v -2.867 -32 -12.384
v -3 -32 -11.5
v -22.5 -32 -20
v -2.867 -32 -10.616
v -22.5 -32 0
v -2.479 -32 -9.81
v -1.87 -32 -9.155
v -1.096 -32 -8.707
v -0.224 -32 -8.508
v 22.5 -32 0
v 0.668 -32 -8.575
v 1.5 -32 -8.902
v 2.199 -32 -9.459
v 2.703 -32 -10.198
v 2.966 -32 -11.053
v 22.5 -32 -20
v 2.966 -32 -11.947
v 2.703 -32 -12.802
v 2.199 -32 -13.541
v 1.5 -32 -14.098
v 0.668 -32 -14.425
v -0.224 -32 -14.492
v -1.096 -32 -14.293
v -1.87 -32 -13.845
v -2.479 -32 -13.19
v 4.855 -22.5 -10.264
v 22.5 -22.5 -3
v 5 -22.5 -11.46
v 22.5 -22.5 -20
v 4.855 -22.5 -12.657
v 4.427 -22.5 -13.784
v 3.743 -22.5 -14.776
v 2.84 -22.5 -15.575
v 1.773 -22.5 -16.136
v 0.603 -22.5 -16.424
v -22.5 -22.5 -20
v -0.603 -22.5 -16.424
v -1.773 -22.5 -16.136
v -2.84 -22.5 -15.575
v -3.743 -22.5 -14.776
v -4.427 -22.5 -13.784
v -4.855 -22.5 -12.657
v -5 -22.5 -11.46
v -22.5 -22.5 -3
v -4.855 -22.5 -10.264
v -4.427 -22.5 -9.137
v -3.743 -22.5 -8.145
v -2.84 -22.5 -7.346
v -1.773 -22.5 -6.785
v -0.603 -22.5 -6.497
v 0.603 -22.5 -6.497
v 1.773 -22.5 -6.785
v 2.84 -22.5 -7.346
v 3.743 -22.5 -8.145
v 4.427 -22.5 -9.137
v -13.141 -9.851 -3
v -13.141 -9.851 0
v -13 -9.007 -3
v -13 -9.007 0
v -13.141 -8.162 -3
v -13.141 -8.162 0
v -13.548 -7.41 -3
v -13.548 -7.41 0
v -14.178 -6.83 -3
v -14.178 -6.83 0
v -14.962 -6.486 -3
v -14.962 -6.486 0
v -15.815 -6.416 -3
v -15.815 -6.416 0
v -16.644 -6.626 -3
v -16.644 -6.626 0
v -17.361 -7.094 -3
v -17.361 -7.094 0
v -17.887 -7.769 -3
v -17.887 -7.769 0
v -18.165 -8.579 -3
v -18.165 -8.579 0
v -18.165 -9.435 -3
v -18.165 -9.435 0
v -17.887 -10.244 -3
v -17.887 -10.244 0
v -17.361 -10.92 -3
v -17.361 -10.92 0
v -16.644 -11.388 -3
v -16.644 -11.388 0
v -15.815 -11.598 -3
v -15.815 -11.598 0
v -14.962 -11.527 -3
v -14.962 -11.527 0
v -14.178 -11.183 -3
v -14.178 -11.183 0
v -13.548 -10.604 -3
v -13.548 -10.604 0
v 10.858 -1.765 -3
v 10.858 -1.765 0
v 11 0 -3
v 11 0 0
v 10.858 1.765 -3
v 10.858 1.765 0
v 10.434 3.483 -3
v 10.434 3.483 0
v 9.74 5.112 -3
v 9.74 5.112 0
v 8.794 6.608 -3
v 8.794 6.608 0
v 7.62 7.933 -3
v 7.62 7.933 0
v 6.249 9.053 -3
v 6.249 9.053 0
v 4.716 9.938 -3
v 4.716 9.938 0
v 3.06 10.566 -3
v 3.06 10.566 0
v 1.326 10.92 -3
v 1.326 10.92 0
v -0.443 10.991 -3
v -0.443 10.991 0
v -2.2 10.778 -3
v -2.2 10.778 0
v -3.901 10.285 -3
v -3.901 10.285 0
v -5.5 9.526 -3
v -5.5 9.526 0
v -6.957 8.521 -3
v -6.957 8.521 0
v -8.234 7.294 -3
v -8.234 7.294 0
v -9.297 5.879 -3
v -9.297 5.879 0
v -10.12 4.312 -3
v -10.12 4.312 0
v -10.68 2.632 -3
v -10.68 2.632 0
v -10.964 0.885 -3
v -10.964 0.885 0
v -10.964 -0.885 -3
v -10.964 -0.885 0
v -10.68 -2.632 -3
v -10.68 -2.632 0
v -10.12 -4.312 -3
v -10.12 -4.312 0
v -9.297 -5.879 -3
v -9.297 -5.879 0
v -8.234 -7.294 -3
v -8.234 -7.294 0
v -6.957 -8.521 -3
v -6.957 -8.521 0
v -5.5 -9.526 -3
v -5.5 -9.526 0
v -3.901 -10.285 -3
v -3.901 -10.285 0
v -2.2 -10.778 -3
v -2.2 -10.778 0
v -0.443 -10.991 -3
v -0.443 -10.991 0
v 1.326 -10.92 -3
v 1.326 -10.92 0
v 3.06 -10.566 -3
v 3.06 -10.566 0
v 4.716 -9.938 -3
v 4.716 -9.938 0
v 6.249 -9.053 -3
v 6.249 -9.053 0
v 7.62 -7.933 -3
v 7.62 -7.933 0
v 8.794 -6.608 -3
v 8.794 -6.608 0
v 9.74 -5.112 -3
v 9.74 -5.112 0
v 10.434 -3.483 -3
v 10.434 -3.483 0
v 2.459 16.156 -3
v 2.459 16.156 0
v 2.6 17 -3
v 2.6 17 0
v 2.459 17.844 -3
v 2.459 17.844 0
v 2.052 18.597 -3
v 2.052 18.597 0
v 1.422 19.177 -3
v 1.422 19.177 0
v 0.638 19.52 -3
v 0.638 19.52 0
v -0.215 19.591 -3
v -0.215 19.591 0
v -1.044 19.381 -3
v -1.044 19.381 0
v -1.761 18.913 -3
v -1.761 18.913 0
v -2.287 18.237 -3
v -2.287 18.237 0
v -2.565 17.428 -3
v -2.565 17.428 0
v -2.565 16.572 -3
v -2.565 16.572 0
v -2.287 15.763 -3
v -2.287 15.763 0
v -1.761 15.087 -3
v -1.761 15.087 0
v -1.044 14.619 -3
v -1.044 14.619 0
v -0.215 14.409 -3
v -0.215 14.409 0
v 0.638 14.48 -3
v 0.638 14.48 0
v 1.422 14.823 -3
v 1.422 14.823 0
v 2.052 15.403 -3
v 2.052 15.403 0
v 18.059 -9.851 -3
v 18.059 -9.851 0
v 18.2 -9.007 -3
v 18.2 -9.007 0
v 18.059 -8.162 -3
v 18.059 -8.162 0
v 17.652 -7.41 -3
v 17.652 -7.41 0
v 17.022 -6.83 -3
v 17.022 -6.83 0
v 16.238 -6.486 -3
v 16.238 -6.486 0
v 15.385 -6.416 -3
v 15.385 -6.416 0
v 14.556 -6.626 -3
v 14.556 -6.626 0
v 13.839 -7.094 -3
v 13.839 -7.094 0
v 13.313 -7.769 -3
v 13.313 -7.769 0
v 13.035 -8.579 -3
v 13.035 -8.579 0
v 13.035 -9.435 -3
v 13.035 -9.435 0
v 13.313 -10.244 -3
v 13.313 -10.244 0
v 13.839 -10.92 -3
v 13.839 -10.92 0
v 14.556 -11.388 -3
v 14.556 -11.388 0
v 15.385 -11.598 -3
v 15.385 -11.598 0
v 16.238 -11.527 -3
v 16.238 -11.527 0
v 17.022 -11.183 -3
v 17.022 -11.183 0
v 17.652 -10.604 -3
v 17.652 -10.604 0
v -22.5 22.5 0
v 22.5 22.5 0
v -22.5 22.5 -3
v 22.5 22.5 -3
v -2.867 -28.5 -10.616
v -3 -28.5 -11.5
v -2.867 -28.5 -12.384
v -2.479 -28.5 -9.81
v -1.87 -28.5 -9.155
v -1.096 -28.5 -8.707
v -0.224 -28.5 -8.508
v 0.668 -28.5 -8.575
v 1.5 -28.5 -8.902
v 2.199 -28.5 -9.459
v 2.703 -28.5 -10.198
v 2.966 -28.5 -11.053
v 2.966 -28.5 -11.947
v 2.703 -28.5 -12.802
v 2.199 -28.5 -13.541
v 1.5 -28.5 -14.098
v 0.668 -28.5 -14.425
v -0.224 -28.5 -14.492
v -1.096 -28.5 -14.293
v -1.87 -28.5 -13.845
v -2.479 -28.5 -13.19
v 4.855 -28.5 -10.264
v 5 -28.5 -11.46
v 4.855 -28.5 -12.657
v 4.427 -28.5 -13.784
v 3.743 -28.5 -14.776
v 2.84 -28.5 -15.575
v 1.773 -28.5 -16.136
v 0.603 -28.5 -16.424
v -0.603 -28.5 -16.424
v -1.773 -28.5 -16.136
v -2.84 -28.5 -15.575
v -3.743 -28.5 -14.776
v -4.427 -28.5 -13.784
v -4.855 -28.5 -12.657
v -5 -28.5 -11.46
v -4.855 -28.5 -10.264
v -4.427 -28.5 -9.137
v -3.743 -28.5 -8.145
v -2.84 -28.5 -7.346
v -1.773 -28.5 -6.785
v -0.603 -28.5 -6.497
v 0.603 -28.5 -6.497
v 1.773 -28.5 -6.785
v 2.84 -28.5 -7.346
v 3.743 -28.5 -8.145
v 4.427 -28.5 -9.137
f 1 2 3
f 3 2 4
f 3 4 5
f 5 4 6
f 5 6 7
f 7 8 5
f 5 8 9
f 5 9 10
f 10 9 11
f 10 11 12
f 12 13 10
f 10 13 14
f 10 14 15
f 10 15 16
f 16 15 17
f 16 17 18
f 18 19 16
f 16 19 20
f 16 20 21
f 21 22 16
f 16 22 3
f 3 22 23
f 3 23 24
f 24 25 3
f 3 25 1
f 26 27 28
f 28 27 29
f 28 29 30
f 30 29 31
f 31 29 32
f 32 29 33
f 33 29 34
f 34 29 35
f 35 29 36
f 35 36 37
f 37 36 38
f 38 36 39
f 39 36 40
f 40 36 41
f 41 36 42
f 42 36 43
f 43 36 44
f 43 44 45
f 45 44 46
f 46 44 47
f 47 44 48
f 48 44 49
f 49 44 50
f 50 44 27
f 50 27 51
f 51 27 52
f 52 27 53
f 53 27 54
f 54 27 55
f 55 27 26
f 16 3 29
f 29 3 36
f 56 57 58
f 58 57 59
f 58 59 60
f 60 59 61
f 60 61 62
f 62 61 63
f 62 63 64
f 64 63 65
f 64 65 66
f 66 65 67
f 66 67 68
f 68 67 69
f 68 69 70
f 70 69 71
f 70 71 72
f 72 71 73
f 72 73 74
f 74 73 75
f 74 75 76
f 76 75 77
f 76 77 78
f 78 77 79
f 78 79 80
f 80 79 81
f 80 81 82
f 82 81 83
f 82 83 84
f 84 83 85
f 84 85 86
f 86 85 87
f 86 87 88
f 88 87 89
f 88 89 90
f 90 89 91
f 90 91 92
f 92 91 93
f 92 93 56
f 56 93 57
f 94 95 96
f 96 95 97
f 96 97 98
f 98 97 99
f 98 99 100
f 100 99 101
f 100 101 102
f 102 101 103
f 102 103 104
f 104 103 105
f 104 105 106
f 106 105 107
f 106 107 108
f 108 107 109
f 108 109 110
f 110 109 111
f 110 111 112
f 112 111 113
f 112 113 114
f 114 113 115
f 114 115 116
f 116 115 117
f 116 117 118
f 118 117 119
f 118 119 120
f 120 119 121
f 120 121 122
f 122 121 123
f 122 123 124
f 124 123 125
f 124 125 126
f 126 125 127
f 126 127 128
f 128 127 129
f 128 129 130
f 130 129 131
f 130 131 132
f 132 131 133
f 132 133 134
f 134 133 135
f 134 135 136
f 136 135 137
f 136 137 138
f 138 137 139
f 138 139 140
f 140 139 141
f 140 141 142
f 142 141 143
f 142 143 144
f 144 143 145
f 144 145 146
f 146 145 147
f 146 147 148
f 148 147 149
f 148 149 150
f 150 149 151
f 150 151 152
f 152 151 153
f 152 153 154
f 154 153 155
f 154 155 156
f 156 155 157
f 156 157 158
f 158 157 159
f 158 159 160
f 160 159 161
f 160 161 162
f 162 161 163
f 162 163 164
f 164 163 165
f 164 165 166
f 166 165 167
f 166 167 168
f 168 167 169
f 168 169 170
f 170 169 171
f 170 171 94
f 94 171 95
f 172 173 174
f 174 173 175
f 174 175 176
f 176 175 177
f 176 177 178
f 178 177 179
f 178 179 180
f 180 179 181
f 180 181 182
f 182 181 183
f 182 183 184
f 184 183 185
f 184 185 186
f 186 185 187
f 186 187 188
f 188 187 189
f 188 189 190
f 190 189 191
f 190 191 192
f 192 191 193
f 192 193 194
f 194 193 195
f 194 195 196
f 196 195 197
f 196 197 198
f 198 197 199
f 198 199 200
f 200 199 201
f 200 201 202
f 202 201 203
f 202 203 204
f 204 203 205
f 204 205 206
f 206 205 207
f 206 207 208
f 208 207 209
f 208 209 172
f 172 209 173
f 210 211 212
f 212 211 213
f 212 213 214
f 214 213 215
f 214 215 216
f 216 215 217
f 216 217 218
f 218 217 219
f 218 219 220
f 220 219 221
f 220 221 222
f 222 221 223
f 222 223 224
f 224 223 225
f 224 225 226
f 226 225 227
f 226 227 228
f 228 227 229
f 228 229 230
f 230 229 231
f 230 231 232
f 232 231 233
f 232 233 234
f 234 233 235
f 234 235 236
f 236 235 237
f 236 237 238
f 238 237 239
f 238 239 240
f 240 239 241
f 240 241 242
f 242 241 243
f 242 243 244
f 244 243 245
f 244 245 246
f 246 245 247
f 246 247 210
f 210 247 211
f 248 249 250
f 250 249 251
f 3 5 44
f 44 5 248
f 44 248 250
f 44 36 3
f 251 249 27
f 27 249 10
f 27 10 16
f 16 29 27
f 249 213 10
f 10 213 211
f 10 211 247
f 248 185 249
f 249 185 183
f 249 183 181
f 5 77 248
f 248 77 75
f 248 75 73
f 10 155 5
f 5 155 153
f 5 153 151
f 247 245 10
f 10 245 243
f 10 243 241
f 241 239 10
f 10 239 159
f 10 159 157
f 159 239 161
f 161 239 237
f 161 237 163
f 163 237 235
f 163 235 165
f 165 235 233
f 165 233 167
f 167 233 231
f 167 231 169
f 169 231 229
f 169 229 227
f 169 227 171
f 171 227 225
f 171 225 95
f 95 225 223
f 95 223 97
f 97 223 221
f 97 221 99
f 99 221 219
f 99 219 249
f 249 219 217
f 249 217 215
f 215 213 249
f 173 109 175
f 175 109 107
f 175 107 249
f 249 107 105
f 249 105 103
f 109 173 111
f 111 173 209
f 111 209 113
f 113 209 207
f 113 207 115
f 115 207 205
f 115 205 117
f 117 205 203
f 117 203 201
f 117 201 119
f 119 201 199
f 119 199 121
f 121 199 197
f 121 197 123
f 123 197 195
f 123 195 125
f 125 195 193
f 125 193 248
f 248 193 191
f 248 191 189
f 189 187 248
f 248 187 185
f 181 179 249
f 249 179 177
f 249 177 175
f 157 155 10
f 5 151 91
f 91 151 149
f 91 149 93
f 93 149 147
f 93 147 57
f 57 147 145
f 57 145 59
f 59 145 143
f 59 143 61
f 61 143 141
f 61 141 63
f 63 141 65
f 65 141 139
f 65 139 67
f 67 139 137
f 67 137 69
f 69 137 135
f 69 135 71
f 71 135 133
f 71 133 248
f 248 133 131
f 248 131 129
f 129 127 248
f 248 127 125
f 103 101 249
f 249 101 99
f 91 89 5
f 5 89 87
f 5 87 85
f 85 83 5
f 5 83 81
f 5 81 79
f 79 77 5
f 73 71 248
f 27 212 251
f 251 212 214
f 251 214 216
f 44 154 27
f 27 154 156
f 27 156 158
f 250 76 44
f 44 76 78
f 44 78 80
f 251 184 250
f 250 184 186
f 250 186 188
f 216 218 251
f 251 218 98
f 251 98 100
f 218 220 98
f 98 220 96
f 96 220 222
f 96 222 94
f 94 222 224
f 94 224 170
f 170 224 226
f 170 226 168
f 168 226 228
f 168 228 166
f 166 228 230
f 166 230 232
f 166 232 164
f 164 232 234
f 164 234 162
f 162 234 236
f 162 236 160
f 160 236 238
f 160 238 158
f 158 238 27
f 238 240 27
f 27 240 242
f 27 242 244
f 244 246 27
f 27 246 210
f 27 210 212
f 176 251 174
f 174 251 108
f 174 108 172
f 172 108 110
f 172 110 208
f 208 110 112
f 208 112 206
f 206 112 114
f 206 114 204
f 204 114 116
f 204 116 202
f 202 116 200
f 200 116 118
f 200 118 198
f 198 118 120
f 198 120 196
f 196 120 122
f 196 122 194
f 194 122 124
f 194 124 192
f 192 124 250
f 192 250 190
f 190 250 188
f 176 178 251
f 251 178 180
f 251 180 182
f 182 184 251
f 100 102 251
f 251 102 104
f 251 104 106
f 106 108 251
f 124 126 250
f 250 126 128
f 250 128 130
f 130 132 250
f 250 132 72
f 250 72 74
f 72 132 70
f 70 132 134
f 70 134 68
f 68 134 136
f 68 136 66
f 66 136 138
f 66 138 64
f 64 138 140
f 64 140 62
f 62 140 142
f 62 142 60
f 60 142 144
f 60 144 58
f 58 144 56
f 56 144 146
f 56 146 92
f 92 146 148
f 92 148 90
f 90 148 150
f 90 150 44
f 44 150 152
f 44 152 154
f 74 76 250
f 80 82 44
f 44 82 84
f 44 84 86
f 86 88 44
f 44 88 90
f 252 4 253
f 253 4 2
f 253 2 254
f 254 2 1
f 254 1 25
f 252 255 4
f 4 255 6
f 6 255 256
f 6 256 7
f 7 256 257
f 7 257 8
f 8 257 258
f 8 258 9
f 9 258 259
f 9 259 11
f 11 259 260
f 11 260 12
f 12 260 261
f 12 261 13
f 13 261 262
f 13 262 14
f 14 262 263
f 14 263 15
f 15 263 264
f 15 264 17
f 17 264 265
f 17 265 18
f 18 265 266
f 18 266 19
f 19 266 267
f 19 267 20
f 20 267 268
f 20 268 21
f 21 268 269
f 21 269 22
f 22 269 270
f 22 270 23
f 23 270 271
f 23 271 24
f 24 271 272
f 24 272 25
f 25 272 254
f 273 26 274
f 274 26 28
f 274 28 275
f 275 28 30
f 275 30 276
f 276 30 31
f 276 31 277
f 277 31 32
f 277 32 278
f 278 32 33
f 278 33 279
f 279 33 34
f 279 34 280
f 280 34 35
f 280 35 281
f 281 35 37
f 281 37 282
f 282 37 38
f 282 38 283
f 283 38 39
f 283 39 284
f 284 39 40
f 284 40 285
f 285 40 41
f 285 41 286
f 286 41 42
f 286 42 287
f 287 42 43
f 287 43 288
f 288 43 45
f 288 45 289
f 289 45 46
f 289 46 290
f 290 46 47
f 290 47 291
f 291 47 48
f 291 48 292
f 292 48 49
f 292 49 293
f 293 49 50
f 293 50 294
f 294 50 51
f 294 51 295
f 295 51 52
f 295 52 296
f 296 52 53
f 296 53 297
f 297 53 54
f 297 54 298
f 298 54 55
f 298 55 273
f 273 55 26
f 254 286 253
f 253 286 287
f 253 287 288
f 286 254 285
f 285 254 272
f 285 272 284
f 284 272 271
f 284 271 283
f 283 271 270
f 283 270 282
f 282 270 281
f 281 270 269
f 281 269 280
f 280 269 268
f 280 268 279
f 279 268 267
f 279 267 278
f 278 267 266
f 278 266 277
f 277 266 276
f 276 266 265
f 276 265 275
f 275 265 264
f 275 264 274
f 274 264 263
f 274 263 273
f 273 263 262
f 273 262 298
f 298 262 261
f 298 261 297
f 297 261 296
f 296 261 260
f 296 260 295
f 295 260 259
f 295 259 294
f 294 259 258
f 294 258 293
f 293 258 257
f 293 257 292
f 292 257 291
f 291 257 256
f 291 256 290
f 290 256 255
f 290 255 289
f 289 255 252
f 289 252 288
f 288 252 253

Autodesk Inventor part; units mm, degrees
ref_plane "YZ Plane" through (0, 0, 0) normal (1, 0, 0) x (0, 1, 0)
ref_plane "XZ Plane" through (0, 0, 0) normal (0, 1, 0) x (-1, 0, 0)
ref_plane "XY Plane" through (0, 0, 0) normal (0, 0, 1) x (1, 0, 0)
sketch "Sketch1" plane through (0, 0, 0) normal (0, 0, 1) x (1, 0, 0)
  line L0 (-22.5, -22.5) -> (22.5, -22.5)
  line L1 (22.5, -22.5) -> (22.5, 22.5)
  line L2 (22.5, 22.5) -> (-22.5, 22.5)
  line L3 (-22.5, 22.5) -> (-22.5, -22.5)
  line L4 (-22.5, -22.5) -> (22.5, 22.5) construction
  line L5 (22.5, -22.5) -> (-22.5, 22.5) construction
  circle A0 centre (0, 0) radius 11
  line L6 (0, 0) -> (0, 17)
  line L7 (0, 0) -> (15.6, -9.0067)
  line L8 (0, 0) -> (-15.6, -9.0067)
  circle A1 centre (0, 17) radius 2.6
  circle A2 centre (15.6, -9.0067) radius 2.6
  circle A3 centre (-15.6, -9.0067) radius 2.6
  point P0 (22.5, -11.0947)
  point P1 (-22.5, -11.0947)
  dimension "d0" = 45
  dimension "d1" = 45
  dimension "d2" = 22
  dimension "d3" = 17
  dimension "d4" = 15.6
  dimension "d5" = 120
  dimension "d6" = 15.6
  dimension "d7" = 120
  dimension "d8" = 5.2
  dimension "d9" = 5.2
  dimension "d10" = 5.2
extrude "Extrusion2" add sketch "Sketch1" against normal blind 3
sketch "Sketch13" plane through (0, 0, 0) normal (0, 0, 1) x (1, 0, 0)
  line L0 (0, 0) -> (0, -32)
  line L1 (-22.5, -22.5) -> (22.5, -22.5) projected
  line L2 (-22.5, -22.5) -> (-22.5, 22.5) projected
  line L3 (-22.5, -22.5) -> (22.5, -22.5)
  line L4 (22.5, -22.5) -> (22.5, -32)
  line L5 (22.5, -32) -> (-22.5, -32)
  line L6 (-22.5, -32) -> (-22.5, -22.5)
  point P0 (22.5, -22.5)
  dimension "d28" = 32
extrude "Extrusion6" add sketch "Sketch13" against normal blind 20
sketch "Sketch14" plane through (-22.5, -22.5, -3) normal (0, 1, 0) x (1, 0, 0)
  line L0 (45, 0) -> (0, 0) projected
  line L1 (45, 0) -> (45, 17) projected
  line L2 (0, 17) -> (45, 17) projected
  line L3 (0, 0) -> (0, 17) projected
  circle A0 centre (22.5, 8.5) radius 3
  point P0 (22.5, -3)
  dimension "d31" = 6
sketch "Sketch15" plane through (-22.5, -22.5, -3) normal (0, 1, 0) x (1, 0, 0)
  circle A0 centre (22.5, 8.4604) radius 5
  point P0 (22.5, -3)
  dimension "d32" = 10
extrude "Extrusion7" cut sketch "Sketch14" against normal blind 10 contours A0
extrude "Extrusion8" cut sketch "Sketch15" against normal blind 6
equation "\"d1\" = d0"
equation "\"d4\" = d6"
equation "\"d7\" = d5"
equation "\"d9\" = d8"
equation "\"d10\" = d8"
properties part number "mount_v10"
